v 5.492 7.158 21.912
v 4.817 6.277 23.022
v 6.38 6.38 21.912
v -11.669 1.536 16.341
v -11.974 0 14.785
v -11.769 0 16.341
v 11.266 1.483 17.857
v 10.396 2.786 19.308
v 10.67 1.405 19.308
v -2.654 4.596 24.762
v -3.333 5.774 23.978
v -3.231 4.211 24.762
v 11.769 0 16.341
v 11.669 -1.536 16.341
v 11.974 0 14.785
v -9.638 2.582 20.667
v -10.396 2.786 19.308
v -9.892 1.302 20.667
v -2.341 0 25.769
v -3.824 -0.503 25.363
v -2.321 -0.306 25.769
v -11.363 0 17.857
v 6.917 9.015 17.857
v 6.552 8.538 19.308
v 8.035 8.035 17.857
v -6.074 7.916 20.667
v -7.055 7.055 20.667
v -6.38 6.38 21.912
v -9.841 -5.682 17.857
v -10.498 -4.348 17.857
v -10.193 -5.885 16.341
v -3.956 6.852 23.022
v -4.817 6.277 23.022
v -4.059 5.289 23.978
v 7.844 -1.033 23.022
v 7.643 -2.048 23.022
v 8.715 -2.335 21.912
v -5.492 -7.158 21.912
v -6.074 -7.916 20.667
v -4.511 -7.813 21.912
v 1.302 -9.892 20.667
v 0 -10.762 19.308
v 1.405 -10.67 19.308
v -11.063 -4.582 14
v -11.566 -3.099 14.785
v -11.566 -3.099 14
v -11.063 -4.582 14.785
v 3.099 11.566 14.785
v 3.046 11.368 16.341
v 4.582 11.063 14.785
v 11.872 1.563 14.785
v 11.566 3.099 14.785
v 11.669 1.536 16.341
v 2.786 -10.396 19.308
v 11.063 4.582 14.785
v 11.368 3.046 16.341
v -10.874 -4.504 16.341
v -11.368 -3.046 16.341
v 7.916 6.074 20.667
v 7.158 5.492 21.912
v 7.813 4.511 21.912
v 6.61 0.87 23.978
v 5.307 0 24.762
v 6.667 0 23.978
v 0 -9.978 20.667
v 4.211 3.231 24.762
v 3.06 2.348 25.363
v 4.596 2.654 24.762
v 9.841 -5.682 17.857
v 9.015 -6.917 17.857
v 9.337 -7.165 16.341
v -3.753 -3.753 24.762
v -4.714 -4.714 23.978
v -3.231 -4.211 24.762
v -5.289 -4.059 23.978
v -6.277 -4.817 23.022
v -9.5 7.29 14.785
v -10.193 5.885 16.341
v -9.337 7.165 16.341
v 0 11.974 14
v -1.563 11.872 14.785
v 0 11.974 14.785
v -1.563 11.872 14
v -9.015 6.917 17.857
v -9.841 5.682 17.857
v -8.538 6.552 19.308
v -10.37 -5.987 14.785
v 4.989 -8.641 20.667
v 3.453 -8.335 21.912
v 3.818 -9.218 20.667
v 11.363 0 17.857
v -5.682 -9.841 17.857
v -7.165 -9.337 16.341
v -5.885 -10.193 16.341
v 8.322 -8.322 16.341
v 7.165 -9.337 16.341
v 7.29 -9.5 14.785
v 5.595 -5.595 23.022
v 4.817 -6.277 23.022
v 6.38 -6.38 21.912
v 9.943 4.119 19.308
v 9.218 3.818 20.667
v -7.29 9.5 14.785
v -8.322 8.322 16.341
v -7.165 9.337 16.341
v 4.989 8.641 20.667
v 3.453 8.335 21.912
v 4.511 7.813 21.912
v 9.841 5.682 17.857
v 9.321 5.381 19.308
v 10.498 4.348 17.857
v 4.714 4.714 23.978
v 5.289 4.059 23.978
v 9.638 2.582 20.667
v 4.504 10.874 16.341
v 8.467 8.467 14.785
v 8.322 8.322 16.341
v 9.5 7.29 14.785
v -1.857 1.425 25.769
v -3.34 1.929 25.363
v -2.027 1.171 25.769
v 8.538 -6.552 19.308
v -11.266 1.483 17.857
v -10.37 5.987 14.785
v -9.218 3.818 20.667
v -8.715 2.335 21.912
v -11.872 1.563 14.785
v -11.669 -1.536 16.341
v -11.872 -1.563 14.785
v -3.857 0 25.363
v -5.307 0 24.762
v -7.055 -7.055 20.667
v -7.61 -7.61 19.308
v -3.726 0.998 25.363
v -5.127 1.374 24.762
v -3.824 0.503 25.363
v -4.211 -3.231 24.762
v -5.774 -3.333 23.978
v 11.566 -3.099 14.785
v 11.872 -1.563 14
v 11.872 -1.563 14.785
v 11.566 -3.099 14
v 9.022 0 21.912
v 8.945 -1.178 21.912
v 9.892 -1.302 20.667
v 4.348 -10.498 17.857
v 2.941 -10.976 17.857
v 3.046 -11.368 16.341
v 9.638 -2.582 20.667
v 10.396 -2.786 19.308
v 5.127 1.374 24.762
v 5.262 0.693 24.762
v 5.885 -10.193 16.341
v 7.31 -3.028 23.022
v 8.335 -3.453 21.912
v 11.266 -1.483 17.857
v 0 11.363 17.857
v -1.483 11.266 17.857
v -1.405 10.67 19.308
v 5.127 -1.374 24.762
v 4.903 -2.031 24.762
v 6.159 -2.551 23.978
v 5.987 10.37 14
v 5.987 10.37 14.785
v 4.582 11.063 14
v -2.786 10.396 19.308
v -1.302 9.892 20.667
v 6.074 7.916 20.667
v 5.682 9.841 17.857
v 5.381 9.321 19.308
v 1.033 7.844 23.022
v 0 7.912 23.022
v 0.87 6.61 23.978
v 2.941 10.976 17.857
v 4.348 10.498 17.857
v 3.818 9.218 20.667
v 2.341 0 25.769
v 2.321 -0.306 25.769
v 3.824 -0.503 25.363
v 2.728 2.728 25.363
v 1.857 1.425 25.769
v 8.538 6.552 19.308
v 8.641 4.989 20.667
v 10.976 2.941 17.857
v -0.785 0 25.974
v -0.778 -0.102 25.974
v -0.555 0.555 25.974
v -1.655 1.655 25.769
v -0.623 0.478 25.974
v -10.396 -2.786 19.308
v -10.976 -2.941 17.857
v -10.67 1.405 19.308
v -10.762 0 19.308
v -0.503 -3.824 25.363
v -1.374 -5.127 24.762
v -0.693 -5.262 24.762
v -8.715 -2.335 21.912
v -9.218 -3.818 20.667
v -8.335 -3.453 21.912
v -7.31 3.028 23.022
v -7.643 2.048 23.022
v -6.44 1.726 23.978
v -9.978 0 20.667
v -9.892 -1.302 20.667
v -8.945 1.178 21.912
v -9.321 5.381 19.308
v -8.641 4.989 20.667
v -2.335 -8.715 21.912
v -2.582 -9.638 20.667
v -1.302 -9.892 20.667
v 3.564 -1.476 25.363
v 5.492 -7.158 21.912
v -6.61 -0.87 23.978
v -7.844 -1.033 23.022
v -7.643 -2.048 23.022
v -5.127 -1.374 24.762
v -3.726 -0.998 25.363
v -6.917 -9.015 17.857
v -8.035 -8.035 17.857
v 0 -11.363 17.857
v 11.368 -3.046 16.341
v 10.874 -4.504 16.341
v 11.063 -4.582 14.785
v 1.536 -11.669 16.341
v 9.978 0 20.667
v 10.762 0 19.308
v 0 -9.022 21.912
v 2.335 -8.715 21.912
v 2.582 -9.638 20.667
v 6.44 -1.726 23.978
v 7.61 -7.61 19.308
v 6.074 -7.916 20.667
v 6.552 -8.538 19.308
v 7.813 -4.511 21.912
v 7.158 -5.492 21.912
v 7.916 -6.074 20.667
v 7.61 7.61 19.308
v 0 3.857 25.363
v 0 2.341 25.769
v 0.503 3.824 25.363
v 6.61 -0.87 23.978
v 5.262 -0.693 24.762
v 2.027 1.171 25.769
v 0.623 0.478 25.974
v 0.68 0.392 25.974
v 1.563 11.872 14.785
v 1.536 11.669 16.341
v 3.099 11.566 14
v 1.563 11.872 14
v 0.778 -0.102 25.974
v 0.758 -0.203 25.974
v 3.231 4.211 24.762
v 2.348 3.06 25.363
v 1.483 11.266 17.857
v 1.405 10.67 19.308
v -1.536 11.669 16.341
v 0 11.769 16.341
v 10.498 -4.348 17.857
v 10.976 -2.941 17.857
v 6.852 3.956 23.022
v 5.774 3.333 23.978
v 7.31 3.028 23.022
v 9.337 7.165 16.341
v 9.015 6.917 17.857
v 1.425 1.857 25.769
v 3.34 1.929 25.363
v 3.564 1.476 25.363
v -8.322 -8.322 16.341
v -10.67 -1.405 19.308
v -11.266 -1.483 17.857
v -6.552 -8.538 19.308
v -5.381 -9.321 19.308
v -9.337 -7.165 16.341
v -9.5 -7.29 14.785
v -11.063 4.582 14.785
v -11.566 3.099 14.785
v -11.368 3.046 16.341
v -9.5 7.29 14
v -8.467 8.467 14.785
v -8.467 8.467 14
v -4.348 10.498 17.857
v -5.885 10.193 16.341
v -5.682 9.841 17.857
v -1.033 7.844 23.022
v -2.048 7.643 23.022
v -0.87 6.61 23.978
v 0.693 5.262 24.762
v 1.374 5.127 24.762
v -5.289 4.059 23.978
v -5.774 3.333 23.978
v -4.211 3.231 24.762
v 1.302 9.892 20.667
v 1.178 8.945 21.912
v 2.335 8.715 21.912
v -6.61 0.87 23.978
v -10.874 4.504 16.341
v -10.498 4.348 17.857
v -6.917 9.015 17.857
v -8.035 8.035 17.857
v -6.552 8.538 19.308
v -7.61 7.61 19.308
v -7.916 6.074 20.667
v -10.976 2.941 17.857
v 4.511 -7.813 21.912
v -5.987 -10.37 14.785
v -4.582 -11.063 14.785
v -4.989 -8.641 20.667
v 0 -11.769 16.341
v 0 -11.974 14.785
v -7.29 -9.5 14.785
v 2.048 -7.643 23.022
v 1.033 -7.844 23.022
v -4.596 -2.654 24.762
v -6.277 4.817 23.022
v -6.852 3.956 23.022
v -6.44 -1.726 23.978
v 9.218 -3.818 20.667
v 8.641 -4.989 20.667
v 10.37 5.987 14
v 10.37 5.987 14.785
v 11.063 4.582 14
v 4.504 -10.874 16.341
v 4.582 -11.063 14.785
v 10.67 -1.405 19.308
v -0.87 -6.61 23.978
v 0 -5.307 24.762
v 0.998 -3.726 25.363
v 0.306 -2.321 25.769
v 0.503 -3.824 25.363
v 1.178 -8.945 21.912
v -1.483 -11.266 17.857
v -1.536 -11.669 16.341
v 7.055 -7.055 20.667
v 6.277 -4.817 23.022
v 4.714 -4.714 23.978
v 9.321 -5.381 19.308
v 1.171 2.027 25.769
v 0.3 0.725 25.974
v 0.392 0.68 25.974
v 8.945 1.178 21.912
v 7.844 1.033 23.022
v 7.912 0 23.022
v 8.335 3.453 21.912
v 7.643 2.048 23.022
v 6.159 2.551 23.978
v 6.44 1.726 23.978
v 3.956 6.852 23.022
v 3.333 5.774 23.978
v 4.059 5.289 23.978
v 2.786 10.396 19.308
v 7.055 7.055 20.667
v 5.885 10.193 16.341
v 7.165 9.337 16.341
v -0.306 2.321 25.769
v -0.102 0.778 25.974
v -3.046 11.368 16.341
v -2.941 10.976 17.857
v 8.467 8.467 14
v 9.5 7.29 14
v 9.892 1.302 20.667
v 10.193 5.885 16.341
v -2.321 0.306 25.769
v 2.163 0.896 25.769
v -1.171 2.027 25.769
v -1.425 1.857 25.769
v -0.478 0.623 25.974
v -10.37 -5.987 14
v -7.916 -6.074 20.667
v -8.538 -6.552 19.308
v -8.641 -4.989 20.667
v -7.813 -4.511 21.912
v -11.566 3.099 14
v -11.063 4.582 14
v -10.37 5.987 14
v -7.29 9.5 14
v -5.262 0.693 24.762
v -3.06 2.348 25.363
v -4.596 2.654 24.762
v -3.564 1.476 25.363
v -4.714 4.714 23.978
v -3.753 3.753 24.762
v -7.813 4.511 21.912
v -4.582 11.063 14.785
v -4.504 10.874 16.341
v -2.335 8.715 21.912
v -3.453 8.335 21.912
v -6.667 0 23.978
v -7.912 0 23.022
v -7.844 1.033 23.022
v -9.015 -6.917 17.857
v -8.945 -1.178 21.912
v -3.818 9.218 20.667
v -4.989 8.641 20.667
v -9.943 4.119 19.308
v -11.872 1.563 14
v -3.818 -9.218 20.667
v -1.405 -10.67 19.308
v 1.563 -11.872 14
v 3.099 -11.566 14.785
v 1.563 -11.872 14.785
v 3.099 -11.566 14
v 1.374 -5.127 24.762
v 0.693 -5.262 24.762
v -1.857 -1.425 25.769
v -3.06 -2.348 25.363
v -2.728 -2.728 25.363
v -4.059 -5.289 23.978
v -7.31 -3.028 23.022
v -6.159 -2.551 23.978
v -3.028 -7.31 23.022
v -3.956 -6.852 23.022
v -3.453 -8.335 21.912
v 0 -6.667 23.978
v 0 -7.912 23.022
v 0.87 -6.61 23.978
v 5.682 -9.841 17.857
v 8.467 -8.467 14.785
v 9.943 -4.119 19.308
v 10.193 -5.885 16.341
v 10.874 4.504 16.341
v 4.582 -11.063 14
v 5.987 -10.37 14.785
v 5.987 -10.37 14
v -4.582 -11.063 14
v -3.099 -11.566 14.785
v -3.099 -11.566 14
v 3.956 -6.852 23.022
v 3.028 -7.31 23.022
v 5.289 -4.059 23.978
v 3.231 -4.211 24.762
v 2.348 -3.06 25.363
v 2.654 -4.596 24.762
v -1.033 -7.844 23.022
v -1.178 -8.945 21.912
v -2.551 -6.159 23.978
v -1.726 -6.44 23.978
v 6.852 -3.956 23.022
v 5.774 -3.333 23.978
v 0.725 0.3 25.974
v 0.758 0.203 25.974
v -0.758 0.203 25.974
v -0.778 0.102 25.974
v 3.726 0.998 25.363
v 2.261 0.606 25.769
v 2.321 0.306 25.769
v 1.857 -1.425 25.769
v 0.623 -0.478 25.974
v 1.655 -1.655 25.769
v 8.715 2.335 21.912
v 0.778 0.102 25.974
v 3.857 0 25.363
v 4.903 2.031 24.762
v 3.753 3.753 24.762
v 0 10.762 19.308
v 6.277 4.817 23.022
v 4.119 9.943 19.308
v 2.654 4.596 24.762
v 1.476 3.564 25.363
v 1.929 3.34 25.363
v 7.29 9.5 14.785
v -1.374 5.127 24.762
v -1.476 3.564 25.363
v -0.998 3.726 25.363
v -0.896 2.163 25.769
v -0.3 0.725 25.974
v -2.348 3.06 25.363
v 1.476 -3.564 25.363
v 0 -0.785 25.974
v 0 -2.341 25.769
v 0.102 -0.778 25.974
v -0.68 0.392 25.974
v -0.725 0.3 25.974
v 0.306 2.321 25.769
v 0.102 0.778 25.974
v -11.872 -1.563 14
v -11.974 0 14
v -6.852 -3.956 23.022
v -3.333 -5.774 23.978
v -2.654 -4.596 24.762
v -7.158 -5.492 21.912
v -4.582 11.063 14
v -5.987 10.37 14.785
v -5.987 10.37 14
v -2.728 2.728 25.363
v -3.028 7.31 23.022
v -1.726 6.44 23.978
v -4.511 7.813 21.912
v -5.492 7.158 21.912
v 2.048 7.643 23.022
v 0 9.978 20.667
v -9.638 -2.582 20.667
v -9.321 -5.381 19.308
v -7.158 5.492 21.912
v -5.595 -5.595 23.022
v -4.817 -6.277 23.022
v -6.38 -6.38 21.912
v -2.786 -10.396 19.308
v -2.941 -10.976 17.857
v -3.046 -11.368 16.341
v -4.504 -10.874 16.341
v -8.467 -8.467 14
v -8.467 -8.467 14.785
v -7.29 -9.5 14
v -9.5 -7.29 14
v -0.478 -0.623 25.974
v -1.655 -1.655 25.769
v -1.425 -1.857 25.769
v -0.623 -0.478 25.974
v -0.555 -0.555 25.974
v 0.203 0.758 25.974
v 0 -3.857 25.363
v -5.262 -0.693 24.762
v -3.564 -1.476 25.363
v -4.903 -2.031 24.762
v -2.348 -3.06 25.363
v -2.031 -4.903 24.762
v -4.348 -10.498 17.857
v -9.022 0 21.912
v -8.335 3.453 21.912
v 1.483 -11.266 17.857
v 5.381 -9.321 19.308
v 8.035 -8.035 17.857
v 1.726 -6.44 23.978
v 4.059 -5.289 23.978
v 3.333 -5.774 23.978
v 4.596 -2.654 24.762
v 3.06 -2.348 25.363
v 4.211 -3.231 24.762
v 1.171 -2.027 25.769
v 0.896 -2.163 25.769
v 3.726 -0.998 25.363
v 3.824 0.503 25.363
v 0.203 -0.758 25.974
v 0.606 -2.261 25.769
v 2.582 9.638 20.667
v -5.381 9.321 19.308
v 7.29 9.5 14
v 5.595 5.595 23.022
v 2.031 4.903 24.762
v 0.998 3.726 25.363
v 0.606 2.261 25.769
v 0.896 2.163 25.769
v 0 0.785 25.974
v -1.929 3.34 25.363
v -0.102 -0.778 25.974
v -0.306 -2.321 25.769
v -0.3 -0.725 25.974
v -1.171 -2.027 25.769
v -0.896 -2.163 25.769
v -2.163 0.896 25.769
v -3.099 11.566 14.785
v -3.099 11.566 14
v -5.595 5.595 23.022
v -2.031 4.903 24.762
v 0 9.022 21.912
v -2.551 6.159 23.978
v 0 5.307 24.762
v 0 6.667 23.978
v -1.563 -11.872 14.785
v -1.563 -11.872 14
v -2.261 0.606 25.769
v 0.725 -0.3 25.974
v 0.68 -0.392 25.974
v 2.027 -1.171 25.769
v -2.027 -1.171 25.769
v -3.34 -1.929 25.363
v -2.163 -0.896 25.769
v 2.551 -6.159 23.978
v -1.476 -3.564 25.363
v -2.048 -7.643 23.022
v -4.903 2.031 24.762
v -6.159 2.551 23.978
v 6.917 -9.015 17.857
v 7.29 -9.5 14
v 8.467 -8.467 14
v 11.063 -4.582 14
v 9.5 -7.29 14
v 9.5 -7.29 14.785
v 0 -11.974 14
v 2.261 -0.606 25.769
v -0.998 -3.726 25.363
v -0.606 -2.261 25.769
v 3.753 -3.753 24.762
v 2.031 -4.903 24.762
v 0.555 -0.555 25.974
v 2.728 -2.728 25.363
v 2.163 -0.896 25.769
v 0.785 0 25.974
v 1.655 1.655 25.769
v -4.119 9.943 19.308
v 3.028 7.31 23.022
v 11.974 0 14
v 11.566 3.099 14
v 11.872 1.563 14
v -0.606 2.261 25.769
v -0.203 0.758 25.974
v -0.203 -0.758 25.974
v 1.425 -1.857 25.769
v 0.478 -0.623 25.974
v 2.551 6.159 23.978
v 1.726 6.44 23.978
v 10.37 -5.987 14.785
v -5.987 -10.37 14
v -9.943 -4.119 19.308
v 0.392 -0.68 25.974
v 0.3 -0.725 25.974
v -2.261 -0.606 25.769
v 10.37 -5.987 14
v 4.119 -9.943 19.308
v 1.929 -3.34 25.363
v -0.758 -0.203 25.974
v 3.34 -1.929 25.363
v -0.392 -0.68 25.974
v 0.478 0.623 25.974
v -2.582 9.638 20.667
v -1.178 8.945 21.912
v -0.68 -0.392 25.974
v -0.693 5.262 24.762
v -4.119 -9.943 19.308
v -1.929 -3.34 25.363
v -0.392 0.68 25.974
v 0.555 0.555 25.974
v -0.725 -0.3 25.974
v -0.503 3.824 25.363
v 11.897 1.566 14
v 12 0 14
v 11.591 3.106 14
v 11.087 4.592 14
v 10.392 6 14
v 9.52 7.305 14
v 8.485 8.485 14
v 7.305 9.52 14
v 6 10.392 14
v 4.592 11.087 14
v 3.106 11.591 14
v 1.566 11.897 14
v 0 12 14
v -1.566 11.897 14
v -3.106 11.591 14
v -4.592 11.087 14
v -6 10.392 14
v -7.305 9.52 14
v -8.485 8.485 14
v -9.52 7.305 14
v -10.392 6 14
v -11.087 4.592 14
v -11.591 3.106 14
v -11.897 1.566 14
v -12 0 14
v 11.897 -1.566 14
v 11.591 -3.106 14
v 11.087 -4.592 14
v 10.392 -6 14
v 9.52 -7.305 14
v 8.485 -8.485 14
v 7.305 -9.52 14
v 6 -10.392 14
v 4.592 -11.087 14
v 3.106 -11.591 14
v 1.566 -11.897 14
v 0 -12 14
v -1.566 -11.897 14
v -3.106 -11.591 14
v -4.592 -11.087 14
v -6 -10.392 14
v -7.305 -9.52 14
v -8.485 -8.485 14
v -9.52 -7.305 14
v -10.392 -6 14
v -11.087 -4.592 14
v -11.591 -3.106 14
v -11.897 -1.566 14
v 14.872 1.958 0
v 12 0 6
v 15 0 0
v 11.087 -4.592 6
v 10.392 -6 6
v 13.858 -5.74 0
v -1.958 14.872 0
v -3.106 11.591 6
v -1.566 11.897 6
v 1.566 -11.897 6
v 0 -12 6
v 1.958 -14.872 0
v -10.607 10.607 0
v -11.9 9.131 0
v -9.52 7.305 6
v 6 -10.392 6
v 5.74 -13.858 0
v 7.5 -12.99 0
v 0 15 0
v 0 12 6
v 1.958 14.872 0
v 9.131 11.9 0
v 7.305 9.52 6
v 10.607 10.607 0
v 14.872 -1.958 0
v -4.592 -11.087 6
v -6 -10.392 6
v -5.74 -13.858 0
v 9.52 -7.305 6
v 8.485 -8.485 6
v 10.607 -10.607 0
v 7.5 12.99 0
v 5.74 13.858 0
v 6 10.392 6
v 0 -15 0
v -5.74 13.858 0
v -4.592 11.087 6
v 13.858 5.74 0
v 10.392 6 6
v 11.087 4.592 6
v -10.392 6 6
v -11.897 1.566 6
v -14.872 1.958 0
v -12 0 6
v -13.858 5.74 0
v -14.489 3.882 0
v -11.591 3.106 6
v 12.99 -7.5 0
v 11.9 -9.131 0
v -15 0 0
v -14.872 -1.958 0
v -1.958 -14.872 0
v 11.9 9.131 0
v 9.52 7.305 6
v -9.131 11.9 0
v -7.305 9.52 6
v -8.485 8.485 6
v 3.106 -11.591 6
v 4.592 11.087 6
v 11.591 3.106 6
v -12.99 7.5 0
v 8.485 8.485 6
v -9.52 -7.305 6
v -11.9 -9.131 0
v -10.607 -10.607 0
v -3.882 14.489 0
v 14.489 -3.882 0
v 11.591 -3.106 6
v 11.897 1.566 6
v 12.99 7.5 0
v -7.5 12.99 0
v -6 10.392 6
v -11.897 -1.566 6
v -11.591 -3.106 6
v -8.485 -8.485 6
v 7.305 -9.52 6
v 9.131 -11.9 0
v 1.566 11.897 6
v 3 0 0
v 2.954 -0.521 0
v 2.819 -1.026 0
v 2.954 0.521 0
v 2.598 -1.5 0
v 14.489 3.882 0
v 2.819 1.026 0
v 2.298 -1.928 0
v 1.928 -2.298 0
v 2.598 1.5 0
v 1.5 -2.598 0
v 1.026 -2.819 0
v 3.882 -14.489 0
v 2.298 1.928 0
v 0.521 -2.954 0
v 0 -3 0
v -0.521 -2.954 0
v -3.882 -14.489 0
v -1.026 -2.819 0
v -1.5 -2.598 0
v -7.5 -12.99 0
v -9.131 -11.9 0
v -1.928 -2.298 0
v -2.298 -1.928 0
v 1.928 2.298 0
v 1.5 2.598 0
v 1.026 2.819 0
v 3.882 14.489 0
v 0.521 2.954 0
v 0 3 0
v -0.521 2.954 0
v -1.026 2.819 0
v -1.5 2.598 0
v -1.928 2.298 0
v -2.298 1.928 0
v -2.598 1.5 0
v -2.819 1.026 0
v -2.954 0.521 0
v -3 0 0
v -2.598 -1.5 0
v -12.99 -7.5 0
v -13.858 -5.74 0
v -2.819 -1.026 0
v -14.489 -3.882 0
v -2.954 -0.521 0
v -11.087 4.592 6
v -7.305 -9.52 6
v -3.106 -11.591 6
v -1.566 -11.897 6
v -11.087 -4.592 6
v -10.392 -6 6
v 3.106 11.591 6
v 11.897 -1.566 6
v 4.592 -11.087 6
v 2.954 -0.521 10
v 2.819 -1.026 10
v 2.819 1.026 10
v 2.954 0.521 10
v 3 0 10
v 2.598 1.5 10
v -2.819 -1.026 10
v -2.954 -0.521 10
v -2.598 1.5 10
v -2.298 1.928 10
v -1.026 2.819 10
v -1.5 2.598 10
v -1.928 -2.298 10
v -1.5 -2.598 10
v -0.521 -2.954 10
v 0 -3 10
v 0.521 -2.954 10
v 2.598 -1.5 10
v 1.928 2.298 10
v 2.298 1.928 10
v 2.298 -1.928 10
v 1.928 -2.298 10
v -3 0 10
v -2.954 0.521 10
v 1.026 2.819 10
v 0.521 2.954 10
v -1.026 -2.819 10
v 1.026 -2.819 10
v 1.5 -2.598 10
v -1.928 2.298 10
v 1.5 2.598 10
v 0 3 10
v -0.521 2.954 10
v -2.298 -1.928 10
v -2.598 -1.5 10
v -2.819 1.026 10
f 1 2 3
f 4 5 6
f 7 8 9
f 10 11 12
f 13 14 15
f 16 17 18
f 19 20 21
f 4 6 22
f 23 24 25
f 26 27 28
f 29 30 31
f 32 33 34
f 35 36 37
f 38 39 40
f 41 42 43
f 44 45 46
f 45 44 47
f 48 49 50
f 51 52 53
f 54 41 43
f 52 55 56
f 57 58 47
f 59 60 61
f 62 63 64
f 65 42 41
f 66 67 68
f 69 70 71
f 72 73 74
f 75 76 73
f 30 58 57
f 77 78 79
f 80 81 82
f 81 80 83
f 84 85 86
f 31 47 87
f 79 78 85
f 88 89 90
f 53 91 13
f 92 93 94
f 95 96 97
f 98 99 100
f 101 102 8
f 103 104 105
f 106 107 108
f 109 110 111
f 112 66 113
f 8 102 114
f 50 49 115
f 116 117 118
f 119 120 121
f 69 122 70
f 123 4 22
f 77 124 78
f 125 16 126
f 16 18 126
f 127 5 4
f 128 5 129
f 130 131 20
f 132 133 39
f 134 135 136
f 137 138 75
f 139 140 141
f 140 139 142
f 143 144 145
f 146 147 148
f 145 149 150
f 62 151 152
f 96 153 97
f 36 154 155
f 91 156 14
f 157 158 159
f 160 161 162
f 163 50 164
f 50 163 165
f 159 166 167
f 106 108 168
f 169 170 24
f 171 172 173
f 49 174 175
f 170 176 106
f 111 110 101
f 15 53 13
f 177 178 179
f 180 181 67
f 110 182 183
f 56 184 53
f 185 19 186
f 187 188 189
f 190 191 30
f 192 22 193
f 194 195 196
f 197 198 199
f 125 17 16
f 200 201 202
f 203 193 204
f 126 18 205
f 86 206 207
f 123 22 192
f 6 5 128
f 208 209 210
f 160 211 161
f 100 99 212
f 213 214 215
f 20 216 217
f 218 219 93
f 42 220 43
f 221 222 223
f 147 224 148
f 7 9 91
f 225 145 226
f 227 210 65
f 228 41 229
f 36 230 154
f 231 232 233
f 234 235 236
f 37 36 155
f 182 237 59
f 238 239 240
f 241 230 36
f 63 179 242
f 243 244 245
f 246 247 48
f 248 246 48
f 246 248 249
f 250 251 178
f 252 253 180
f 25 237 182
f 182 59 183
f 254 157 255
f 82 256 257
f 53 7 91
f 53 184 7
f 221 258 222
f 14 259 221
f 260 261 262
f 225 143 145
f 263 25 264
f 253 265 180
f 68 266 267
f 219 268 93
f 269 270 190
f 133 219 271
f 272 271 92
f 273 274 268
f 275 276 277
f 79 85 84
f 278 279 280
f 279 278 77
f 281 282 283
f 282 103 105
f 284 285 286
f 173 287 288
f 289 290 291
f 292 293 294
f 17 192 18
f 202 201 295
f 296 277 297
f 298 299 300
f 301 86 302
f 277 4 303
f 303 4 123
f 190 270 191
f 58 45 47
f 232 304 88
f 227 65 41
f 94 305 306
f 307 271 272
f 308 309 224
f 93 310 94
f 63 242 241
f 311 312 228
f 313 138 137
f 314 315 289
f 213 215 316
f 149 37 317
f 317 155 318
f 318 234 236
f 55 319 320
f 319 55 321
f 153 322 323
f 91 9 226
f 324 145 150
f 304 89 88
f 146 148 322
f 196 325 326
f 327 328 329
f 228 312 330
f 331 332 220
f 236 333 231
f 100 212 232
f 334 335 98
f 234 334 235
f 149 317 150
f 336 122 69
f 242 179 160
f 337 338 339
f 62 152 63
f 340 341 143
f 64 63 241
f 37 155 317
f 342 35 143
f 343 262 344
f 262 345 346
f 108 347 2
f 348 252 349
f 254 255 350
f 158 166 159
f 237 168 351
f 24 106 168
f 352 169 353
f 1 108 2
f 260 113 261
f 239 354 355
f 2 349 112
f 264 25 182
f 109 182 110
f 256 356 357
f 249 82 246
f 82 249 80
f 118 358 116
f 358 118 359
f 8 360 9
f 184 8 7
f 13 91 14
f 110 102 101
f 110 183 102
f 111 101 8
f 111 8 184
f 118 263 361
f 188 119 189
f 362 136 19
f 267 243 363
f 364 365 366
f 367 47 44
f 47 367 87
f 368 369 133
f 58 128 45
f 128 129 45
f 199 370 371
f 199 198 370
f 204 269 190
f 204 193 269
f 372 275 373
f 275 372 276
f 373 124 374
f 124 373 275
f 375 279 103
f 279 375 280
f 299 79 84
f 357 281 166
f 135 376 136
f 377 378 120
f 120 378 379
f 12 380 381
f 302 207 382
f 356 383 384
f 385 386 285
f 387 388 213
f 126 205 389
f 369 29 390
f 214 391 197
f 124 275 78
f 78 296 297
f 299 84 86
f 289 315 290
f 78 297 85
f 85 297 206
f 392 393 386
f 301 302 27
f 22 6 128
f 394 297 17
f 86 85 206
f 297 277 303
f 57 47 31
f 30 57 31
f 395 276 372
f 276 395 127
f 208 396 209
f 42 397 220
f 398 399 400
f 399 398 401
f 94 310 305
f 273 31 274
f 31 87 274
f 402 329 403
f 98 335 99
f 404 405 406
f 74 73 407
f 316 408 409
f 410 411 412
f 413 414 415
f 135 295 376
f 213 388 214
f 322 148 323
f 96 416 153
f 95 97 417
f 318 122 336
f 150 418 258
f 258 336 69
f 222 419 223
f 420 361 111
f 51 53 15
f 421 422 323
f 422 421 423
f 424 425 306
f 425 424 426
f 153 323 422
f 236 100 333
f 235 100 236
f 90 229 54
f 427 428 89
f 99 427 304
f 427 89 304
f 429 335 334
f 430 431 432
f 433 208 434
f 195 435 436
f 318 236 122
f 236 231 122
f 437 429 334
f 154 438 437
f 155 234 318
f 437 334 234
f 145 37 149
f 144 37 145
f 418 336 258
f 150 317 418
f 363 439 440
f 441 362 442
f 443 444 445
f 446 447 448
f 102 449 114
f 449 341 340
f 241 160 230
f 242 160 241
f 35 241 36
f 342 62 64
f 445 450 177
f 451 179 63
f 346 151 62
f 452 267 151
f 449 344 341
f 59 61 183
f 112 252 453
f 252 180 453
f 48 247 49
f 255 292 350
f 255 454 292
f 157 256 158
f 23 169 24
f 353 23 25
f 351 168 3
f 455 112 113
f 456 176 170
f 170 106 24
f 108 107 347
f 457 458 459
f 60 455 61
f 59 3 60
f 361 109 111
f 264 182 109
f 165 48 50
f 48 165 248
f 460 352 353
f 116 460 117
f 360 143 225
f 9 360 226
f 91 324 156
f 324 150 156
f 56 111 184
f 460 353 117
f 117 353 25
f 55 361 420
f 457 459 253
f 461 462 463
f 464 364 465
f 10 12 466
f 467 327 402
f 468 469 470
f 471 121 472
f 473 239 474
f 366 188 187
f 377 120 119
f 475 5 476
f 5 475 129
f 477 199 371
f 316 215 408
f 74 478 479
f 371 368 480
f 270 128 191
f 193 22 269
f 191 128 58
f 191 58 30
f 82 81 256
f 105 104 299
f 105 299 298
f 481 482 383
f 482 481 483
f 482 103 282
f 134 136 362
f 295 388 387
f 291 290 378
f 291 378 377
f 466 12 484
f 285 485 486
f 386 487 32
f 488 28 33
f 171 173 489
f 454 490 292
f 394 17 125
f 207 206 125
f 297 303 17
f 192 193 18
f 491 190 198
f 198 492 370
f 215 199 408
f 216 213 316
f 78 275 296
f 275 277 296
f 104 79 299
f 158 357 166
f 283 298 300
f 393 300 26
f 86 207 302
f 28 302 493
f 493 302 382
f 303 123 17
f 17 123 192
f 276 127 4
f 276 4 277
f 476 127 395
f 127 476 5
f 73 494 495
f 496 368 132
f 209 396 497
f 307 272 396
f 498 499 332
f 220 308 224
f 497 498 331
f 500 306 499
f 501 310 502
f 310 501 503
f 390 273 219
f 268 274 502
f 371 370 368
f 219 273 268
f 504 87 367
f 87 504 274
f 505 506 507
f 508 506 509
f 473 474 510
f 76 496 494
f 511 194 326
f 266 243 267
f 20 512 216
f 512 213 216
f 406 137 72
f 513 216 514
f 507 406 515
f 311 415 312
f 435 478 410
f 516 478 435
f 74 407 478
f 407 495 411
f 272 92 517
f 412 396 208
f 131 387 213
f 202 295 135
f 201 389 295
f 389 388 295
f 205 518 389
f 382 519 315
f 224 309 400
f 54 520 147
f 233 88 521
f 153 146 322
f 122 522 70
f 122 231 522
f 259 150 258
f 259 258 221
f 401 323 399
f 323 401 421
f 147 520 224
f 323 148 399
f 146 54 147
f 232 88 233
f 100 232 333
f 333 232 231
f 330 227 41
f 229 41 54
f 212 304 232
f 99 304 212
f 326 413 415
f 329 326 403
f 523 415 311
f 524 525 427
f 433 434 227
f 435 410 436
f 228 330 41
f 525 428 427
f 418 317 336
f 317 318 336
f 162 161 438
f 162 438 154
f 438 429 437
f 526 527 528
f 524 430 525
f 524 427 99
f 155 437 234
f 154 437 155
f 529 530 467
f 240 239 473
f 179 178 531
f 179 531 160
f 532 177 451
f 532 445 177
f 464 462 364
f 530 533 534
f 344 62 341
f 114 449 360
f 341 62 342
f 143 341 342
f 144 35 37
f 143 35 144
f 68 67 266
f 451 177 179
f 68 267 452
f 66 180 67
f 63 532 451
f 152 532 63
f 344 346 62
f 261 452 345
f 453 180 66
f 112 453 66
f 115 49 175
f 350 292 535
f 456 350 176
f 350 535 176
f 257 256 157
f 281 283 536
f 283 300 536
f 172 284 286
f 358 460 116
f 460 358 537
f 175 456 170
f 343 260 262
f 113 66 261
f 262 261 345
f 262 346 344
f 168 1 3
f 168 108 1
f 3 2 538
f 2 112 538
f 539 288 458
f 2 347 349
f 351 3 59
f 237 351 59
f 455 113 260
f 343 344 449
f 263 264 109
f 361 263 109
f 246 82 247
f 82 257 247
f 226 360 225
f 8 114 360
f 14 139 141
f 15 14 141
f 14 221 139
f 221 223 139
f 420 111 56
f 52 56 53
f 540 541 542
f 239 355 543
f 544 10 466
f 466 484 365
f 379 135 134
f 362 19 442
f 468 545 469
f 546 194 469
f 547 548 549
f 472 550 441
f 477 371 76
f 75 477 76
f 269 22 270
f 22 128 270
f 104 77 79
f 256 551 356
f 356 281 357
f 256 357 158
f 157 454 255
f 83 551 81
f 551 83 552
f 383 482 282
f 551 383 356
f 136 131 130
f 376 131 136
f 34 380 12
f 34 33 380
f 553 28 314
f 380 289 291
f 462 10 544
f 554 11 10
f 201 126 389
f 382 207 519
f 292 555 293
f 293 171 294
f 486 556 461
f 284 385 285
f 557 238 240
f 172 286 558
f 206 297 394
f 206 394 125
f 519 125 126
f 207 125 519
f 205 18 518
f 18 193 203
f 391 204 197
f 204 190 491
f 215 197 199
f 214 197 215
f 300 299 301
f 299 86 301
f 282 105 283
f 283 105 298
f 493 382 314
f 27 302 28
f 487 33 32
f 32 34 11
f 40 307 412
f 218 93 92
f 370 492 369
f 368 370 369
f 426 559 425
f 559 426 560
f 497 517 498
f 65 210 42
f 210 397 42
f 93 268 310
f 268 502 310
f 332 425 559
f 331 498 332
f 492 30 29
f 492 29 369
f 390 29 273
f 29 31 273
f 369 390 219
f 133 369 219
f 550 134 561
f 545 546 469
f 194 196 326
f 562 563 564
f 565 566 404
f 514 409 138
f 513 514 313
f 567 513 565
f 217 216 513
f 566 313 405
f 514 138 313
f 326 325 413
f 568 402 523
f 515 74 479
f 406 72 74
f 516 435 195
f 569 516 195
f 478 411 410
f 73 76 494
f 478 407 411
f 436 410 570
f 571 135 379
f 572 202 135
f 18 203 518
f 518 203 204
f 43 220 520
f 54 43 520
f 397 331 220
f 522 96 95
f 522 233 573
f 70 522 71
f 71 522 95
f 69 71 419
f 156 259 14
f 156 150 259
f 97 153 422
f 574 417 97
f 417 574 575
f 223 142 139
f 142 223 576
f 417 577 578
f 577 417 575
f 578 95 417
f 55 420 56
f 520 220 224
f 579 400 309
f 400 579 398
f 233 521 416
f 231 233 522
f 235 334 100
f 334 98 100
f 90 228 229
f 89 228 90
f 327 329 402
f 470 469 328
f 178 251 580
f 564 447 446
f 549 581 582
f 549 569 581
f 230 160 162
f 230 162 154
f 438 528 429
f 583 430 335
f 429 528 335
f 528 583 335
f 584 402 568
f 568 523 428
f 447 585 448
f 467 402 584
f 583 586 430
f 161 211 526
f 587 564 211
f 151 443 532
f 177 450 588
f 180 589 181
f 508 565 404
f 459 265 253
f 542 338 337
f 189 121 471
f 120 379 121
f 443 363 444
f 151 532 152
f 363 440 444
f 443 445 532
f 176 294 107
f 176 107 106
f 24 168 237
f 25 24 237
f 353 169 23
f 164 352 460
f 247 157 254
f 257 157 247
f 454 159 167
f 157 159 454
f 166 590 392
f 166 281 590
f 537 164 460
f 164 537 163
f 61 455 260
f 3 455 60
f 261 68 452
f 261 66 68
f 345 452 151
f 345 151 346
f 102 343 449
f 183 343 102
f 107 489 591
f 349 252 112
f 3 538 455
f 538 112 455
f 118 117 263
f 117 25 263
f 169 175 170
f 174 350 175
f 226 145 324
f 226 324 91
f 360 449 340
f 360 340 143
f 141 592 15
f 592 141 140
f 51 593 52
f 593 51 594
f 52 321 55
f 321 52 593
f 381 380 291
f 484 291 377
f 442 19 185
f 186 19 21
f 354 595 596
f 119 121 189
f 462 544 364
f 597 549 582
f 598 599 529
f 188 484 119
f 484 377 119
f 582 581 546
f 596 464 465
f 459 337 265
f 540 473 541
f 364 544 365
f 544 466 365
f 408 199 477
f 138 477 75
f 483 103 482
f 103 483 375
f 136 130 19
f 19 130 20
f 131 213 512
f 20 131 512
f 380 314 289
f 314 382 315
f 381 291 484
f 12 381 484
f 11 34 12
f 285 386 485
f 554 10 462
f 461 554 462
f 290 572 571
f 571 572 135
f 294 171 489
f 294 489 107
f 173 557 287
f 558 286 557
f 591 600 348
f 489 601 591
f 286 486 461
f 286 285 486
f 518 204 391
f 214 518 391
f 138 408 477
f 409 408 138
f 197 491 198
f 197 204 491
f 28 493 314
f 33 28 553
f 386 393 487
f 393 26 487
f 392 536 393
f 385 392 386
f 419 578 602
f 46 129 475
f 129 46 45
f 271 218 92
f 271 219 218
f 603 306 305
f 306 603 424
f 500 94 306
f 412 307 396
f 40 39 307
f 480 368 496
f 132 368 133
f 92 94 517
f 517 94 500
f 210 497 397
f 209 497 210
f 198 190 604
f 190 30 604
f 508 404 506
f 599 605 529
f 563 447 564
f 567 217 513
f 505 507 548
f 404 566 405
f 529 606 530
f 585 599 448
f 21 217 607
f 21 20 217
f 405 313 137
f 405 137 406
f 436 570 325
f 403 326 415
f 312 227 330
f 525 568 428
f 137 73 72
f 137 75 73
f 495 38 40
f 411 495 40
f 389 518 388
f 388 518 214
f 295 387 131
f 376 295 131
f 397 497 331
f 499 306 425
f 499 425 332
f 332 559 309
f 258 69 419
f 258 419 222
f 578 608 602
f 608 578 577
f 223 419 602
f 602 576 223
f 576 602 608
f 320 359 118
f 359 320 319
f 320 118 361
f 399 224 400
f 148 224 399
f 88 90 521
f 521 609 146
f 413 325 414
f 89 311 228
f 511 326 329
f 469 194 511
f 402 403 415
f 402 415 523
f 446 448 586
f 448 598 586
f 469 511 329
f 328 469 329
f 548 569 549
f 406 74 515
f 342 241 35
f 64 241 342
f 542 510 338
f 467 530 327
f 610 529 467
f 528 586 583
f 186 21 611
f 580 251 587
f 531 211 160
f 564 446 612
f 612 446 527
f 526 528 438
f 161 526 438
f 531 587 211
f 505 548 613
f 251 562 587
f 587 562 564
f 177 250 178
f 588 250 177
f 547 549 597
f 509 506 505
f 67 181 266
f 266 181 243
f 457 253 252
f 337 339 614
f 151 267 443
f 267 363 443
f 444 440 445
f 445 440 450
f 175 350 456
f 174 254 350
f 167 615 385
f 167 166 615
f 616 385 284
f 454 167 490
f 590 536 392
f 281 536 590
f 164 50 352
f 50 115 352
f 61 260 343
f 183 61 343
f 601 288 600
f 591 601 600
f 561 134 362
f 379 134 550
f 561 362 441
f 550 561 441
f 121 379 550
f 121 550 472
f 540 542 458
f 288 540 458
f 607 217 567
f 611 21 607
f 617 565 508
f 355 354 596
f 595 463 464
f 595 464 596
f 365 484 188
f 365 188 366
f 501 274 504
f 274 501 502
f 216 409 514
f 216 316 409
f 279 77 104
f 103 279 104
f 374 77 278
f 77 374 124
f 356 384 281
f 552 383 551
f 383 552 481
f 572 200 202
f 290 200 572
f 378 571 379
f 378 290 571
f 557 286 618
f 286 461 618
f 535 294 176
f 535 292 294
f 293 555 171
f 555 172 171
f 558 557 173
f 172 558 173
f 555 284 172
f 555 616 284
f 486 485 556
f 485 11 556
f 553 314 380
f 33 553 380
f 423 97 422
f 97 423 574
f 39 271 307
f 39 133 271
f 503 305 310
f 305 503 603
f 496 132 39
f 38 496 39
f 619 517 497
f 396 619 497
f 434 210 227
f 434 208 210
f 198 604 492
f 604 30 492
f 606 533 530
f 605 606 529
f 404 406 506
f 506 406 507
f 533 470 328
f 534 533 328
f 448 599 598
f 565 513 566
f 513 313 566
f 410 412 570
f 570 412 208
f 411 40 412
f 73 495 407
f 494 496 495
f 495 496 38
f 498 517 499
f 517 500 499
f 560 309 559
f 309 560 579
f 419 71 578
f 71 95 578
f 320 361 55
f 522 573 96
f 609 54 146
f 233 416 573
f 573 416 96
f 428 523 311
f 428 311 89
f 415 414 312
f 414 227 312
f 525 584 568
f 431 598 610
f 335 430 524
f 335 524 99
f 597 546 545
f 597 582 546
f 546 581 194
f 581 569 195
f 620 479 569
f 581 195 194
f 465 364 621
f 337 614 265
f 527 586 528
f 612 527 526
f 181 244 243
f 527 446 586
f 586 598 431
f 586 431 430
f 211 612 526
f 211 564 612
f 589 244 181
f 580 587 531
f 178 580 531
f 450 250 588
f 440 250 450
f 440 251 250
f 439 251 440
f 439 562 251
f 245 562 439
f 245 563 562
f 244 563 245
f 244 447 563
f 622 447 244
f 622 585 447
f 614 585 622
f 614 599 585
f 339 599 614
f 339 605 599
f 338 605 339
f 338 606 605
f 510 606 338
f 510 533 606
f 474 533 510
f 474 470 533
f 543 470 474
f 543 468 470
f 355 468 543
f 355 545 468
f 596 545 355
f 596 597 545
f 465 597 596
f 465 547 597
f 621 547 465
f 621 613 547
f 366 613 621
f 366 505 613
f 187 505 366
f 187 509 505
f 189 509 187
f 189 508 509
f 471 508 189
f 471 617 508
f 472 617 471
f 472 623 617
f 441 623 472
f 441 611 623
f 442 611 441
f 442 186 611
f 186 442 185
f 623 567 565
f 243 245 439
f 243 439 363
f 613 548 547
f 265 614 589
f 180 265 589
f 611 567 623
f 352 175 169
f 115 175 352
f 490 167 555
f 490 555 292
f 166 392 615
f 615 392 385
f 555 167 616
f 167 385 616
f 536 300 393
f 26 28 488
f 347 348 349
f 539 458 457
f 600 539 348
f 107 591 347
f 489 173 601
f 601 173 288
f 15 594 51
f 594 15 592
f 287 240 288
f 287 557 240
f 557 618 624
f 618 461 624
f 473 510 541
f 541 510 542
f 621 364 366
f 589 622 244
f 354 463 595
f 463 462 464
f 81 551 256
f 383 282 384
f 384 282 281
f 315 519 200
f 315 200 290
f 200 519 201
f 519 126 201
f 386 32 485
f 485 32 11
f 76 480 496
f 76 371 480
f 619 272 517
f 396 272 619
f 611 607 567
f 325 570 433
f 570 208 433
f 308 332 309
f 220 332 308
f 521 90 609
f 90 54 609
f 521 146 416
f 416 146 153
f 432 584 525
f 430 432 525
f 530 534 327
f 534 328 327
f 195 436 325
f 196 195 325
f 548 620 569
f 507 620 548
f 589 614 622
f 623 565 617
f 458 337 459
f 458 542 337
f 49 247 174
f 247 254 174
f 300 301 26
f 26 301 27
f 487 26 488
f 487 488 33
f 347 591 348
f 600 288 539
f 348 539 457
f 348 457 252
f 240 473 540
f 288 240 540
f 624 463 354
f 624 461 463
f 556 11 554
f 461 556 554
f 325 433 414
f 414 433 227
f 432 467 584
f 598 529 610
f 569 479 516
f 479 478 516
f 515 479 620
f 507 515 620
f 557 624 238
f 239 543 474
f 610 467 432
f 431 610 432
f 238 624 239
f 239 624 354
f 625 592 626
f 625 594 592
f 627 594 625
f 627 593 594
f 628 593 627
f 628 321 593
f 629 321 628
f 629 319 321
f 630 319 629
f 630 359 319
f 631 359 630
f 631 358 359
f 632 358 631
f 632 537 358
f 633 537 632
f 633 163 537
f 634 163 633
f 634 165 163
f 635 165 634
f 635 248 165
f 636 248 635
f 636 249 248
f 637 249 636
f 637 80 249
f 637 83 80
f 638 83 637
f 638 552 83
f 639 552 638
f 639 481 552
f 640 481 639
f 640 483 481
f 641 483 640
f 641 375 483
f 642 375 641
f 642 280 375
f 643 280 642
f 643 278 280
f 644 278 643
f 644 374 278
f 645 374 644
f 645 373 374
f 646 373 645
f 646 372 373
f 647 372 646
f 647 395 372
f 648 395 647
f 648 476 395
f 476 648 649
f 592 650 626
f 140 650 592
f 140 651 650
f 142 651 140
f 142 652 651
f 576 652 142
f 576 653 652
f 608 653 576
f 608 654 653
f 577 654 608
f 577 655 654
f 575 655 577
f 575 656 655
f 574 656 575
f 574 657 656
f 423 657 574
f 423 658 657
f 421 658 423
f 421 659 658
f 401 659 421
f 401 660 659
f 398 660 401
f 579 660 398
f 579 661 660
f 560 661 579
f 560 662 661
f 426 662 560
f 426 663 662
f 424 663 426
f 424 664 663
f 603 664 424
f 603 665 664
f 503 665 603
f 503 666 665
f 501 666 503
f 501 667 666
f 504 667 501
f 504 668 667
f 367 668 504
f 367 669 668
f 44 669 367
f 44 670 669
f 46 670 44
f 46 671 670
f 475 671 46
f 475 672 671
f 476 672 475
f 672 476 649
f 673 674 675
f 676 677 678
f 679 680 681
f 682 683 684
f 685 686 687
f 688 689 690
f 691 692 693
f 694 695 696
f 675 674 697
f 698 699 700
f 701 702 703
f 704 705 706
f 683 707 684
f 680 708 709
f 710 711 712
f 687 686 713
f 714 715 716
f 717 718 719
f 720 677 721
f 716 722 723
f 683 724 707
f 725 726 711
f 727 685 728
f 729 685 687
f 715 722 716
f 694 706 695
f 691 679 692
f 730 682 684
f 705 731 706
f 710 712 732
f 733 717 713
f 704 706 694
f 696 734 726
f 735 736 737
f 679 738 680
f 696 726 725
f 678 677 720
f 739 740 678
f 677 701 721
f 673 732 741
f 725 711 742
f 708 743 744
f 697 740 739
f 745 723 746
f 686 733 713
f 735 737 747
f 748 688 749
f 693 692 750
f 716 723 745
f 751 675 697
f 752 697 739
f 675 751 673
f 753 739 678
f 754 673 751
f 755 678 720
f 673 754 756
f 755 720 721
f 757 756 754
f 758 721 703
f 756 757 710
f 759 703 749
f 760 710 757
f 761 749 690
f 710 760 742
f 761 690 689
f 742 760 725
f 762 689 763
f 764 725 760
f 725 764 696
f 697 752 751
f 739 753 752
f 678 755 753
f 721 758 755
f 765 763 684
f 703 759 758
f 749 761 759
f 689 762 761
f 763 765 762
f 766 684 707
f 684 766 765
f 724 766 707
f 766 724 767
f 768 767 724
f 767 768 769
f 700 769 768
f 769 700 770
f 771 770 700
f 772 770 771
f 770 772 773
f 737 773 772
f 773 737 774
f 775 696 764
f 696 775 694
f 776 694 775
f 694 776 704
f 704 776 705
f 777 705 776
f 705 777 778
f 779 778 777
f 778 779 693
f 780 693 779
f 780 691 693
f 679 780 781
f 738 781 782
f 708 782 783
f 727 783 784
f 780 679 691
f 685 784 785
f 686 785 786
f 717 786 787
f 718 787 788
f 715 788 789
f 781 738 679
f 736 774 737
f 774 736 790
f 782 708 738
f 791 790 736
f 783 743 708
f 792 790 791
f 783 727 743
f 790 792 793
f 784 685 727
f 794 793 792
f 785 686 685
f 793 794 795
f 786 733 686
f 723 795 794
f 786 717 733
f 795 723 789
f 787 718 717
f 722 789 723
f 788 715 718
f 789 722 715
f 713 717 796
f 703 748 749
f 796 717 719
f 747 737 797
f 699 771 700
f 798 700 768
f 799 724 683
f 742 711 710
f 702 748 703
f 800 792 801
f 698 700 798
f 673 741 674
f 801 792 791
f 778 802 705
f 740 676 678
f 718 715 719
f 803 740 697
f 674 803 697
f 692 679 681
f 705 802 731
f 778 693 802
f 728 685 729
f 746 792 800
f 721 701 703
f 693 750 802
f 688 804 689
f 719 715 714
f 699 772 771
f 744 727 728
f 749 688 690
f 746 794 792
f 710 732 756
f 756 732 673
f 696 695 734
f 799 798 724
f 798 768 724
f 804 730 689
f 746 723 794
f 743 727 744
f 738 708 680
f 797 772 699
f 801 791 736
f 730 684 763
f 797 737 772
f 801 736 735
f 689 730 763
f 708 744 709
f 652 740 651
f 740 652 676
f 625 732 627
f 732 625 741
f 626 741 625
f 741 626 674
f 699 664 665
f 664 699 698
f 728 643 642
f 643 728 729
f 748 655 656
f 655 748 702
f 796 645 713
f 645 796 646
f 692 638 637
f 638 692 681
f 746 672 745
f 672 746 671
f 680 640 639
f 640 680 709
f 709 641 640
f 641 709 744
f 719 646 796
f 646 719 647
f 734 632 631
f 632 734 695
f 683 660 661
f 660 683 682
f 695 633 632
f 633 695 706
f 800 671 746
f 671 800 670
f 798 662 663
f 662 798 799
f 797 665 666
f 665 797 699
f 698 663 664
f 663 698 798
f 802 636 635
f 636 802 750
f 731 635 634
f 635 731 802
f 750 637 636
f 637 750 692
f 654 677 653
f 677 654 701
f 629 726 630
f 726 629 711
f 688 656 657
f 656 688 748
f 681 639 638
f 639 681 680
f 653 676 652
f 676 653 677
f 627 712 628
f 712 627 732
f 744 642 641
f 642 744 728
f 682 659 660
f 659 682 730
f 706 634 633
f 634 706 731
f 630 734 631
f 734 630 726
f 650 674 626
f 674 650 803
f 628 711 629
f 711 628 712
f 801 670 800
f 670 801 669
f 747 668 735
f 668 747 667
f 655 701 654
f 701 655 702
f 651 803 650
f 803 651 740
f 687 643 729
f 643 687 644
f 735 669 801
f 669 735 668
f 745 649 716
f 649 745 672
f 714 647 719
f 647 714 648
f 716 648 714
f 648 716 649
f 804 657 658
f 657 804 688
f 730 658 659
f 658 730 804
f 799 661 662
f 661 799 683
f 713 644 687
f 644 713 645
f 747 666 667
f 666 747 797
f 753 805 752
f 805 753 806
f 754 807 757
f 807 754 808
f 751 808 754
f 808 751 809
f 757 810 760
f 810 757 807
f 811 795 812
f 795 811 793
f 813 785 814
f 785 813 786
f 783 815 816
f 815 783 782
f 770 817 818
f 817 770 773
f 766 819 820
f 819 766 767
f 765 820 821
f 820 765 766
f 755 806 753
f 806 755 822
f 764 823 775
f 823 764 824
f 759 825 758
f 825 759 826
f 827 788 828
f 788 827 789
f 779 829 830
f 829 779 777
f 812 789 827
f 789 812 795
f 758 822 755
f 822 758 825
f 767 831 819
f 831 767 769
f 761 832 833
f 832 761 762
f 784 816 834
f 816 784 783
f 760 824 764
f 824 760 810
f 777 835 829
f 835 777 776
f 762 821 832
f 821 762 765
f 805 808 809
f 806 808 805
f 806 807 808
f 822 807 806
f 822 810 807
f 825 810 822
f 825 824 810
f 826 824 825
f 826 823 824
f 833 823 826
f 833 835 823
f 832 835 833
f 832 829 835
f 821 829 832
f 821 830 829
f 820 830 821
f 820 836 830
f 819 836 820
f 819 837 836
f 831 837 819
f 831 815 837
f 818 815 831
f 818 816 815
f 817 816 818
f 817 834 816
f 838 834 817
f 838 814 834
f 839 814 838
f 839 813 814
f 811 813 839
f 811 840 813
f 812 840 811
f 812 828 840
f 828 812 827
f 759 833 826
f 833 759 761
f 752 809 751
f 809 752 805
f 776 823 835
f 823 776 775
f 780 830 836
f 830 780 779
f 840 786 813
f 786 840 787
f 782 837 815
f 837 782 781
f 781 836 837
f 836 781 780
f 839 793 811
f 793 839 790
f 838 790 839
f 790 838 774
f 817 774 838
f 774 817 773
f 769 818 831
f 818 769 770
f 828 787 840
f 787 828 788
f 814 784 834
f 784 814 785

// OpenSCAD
// A knob: a chamfered skirt (a cone), a domed top (a sphere) and a bore.
// Known answers, checked by tests/test_mesh_files.cpp:
//   skirt: a cone from r 15 at z = 0 to r 12 at z = 6 ($fn 48), on z
//   body: a cylinder r 12 from z = 6 to 14 ($fn 48), on z
//   dome: a sphere r 12 about (0, 0, 14) ($fn 48), its top half
//   bore: r 3 ($fn 36), from z = -1 to 10, on z
difference() {
  union() {
    cylinder(r1 = 15, r2 = 12, h = 6, $fn = 48);
    translate([0, 0, 6]) cylinder(r = 12, h = 8, $fn = 48);
    translate([0, 0, 14]) intersection() {
      sphere(r = 12, $fn = 48);
      translate([-13, -13, 0]) cube([26, 26, 13]);
    }
  }
  translate([0, 0, -1]) cylinder(r = 3, h = 11, $fn = 36);
}
